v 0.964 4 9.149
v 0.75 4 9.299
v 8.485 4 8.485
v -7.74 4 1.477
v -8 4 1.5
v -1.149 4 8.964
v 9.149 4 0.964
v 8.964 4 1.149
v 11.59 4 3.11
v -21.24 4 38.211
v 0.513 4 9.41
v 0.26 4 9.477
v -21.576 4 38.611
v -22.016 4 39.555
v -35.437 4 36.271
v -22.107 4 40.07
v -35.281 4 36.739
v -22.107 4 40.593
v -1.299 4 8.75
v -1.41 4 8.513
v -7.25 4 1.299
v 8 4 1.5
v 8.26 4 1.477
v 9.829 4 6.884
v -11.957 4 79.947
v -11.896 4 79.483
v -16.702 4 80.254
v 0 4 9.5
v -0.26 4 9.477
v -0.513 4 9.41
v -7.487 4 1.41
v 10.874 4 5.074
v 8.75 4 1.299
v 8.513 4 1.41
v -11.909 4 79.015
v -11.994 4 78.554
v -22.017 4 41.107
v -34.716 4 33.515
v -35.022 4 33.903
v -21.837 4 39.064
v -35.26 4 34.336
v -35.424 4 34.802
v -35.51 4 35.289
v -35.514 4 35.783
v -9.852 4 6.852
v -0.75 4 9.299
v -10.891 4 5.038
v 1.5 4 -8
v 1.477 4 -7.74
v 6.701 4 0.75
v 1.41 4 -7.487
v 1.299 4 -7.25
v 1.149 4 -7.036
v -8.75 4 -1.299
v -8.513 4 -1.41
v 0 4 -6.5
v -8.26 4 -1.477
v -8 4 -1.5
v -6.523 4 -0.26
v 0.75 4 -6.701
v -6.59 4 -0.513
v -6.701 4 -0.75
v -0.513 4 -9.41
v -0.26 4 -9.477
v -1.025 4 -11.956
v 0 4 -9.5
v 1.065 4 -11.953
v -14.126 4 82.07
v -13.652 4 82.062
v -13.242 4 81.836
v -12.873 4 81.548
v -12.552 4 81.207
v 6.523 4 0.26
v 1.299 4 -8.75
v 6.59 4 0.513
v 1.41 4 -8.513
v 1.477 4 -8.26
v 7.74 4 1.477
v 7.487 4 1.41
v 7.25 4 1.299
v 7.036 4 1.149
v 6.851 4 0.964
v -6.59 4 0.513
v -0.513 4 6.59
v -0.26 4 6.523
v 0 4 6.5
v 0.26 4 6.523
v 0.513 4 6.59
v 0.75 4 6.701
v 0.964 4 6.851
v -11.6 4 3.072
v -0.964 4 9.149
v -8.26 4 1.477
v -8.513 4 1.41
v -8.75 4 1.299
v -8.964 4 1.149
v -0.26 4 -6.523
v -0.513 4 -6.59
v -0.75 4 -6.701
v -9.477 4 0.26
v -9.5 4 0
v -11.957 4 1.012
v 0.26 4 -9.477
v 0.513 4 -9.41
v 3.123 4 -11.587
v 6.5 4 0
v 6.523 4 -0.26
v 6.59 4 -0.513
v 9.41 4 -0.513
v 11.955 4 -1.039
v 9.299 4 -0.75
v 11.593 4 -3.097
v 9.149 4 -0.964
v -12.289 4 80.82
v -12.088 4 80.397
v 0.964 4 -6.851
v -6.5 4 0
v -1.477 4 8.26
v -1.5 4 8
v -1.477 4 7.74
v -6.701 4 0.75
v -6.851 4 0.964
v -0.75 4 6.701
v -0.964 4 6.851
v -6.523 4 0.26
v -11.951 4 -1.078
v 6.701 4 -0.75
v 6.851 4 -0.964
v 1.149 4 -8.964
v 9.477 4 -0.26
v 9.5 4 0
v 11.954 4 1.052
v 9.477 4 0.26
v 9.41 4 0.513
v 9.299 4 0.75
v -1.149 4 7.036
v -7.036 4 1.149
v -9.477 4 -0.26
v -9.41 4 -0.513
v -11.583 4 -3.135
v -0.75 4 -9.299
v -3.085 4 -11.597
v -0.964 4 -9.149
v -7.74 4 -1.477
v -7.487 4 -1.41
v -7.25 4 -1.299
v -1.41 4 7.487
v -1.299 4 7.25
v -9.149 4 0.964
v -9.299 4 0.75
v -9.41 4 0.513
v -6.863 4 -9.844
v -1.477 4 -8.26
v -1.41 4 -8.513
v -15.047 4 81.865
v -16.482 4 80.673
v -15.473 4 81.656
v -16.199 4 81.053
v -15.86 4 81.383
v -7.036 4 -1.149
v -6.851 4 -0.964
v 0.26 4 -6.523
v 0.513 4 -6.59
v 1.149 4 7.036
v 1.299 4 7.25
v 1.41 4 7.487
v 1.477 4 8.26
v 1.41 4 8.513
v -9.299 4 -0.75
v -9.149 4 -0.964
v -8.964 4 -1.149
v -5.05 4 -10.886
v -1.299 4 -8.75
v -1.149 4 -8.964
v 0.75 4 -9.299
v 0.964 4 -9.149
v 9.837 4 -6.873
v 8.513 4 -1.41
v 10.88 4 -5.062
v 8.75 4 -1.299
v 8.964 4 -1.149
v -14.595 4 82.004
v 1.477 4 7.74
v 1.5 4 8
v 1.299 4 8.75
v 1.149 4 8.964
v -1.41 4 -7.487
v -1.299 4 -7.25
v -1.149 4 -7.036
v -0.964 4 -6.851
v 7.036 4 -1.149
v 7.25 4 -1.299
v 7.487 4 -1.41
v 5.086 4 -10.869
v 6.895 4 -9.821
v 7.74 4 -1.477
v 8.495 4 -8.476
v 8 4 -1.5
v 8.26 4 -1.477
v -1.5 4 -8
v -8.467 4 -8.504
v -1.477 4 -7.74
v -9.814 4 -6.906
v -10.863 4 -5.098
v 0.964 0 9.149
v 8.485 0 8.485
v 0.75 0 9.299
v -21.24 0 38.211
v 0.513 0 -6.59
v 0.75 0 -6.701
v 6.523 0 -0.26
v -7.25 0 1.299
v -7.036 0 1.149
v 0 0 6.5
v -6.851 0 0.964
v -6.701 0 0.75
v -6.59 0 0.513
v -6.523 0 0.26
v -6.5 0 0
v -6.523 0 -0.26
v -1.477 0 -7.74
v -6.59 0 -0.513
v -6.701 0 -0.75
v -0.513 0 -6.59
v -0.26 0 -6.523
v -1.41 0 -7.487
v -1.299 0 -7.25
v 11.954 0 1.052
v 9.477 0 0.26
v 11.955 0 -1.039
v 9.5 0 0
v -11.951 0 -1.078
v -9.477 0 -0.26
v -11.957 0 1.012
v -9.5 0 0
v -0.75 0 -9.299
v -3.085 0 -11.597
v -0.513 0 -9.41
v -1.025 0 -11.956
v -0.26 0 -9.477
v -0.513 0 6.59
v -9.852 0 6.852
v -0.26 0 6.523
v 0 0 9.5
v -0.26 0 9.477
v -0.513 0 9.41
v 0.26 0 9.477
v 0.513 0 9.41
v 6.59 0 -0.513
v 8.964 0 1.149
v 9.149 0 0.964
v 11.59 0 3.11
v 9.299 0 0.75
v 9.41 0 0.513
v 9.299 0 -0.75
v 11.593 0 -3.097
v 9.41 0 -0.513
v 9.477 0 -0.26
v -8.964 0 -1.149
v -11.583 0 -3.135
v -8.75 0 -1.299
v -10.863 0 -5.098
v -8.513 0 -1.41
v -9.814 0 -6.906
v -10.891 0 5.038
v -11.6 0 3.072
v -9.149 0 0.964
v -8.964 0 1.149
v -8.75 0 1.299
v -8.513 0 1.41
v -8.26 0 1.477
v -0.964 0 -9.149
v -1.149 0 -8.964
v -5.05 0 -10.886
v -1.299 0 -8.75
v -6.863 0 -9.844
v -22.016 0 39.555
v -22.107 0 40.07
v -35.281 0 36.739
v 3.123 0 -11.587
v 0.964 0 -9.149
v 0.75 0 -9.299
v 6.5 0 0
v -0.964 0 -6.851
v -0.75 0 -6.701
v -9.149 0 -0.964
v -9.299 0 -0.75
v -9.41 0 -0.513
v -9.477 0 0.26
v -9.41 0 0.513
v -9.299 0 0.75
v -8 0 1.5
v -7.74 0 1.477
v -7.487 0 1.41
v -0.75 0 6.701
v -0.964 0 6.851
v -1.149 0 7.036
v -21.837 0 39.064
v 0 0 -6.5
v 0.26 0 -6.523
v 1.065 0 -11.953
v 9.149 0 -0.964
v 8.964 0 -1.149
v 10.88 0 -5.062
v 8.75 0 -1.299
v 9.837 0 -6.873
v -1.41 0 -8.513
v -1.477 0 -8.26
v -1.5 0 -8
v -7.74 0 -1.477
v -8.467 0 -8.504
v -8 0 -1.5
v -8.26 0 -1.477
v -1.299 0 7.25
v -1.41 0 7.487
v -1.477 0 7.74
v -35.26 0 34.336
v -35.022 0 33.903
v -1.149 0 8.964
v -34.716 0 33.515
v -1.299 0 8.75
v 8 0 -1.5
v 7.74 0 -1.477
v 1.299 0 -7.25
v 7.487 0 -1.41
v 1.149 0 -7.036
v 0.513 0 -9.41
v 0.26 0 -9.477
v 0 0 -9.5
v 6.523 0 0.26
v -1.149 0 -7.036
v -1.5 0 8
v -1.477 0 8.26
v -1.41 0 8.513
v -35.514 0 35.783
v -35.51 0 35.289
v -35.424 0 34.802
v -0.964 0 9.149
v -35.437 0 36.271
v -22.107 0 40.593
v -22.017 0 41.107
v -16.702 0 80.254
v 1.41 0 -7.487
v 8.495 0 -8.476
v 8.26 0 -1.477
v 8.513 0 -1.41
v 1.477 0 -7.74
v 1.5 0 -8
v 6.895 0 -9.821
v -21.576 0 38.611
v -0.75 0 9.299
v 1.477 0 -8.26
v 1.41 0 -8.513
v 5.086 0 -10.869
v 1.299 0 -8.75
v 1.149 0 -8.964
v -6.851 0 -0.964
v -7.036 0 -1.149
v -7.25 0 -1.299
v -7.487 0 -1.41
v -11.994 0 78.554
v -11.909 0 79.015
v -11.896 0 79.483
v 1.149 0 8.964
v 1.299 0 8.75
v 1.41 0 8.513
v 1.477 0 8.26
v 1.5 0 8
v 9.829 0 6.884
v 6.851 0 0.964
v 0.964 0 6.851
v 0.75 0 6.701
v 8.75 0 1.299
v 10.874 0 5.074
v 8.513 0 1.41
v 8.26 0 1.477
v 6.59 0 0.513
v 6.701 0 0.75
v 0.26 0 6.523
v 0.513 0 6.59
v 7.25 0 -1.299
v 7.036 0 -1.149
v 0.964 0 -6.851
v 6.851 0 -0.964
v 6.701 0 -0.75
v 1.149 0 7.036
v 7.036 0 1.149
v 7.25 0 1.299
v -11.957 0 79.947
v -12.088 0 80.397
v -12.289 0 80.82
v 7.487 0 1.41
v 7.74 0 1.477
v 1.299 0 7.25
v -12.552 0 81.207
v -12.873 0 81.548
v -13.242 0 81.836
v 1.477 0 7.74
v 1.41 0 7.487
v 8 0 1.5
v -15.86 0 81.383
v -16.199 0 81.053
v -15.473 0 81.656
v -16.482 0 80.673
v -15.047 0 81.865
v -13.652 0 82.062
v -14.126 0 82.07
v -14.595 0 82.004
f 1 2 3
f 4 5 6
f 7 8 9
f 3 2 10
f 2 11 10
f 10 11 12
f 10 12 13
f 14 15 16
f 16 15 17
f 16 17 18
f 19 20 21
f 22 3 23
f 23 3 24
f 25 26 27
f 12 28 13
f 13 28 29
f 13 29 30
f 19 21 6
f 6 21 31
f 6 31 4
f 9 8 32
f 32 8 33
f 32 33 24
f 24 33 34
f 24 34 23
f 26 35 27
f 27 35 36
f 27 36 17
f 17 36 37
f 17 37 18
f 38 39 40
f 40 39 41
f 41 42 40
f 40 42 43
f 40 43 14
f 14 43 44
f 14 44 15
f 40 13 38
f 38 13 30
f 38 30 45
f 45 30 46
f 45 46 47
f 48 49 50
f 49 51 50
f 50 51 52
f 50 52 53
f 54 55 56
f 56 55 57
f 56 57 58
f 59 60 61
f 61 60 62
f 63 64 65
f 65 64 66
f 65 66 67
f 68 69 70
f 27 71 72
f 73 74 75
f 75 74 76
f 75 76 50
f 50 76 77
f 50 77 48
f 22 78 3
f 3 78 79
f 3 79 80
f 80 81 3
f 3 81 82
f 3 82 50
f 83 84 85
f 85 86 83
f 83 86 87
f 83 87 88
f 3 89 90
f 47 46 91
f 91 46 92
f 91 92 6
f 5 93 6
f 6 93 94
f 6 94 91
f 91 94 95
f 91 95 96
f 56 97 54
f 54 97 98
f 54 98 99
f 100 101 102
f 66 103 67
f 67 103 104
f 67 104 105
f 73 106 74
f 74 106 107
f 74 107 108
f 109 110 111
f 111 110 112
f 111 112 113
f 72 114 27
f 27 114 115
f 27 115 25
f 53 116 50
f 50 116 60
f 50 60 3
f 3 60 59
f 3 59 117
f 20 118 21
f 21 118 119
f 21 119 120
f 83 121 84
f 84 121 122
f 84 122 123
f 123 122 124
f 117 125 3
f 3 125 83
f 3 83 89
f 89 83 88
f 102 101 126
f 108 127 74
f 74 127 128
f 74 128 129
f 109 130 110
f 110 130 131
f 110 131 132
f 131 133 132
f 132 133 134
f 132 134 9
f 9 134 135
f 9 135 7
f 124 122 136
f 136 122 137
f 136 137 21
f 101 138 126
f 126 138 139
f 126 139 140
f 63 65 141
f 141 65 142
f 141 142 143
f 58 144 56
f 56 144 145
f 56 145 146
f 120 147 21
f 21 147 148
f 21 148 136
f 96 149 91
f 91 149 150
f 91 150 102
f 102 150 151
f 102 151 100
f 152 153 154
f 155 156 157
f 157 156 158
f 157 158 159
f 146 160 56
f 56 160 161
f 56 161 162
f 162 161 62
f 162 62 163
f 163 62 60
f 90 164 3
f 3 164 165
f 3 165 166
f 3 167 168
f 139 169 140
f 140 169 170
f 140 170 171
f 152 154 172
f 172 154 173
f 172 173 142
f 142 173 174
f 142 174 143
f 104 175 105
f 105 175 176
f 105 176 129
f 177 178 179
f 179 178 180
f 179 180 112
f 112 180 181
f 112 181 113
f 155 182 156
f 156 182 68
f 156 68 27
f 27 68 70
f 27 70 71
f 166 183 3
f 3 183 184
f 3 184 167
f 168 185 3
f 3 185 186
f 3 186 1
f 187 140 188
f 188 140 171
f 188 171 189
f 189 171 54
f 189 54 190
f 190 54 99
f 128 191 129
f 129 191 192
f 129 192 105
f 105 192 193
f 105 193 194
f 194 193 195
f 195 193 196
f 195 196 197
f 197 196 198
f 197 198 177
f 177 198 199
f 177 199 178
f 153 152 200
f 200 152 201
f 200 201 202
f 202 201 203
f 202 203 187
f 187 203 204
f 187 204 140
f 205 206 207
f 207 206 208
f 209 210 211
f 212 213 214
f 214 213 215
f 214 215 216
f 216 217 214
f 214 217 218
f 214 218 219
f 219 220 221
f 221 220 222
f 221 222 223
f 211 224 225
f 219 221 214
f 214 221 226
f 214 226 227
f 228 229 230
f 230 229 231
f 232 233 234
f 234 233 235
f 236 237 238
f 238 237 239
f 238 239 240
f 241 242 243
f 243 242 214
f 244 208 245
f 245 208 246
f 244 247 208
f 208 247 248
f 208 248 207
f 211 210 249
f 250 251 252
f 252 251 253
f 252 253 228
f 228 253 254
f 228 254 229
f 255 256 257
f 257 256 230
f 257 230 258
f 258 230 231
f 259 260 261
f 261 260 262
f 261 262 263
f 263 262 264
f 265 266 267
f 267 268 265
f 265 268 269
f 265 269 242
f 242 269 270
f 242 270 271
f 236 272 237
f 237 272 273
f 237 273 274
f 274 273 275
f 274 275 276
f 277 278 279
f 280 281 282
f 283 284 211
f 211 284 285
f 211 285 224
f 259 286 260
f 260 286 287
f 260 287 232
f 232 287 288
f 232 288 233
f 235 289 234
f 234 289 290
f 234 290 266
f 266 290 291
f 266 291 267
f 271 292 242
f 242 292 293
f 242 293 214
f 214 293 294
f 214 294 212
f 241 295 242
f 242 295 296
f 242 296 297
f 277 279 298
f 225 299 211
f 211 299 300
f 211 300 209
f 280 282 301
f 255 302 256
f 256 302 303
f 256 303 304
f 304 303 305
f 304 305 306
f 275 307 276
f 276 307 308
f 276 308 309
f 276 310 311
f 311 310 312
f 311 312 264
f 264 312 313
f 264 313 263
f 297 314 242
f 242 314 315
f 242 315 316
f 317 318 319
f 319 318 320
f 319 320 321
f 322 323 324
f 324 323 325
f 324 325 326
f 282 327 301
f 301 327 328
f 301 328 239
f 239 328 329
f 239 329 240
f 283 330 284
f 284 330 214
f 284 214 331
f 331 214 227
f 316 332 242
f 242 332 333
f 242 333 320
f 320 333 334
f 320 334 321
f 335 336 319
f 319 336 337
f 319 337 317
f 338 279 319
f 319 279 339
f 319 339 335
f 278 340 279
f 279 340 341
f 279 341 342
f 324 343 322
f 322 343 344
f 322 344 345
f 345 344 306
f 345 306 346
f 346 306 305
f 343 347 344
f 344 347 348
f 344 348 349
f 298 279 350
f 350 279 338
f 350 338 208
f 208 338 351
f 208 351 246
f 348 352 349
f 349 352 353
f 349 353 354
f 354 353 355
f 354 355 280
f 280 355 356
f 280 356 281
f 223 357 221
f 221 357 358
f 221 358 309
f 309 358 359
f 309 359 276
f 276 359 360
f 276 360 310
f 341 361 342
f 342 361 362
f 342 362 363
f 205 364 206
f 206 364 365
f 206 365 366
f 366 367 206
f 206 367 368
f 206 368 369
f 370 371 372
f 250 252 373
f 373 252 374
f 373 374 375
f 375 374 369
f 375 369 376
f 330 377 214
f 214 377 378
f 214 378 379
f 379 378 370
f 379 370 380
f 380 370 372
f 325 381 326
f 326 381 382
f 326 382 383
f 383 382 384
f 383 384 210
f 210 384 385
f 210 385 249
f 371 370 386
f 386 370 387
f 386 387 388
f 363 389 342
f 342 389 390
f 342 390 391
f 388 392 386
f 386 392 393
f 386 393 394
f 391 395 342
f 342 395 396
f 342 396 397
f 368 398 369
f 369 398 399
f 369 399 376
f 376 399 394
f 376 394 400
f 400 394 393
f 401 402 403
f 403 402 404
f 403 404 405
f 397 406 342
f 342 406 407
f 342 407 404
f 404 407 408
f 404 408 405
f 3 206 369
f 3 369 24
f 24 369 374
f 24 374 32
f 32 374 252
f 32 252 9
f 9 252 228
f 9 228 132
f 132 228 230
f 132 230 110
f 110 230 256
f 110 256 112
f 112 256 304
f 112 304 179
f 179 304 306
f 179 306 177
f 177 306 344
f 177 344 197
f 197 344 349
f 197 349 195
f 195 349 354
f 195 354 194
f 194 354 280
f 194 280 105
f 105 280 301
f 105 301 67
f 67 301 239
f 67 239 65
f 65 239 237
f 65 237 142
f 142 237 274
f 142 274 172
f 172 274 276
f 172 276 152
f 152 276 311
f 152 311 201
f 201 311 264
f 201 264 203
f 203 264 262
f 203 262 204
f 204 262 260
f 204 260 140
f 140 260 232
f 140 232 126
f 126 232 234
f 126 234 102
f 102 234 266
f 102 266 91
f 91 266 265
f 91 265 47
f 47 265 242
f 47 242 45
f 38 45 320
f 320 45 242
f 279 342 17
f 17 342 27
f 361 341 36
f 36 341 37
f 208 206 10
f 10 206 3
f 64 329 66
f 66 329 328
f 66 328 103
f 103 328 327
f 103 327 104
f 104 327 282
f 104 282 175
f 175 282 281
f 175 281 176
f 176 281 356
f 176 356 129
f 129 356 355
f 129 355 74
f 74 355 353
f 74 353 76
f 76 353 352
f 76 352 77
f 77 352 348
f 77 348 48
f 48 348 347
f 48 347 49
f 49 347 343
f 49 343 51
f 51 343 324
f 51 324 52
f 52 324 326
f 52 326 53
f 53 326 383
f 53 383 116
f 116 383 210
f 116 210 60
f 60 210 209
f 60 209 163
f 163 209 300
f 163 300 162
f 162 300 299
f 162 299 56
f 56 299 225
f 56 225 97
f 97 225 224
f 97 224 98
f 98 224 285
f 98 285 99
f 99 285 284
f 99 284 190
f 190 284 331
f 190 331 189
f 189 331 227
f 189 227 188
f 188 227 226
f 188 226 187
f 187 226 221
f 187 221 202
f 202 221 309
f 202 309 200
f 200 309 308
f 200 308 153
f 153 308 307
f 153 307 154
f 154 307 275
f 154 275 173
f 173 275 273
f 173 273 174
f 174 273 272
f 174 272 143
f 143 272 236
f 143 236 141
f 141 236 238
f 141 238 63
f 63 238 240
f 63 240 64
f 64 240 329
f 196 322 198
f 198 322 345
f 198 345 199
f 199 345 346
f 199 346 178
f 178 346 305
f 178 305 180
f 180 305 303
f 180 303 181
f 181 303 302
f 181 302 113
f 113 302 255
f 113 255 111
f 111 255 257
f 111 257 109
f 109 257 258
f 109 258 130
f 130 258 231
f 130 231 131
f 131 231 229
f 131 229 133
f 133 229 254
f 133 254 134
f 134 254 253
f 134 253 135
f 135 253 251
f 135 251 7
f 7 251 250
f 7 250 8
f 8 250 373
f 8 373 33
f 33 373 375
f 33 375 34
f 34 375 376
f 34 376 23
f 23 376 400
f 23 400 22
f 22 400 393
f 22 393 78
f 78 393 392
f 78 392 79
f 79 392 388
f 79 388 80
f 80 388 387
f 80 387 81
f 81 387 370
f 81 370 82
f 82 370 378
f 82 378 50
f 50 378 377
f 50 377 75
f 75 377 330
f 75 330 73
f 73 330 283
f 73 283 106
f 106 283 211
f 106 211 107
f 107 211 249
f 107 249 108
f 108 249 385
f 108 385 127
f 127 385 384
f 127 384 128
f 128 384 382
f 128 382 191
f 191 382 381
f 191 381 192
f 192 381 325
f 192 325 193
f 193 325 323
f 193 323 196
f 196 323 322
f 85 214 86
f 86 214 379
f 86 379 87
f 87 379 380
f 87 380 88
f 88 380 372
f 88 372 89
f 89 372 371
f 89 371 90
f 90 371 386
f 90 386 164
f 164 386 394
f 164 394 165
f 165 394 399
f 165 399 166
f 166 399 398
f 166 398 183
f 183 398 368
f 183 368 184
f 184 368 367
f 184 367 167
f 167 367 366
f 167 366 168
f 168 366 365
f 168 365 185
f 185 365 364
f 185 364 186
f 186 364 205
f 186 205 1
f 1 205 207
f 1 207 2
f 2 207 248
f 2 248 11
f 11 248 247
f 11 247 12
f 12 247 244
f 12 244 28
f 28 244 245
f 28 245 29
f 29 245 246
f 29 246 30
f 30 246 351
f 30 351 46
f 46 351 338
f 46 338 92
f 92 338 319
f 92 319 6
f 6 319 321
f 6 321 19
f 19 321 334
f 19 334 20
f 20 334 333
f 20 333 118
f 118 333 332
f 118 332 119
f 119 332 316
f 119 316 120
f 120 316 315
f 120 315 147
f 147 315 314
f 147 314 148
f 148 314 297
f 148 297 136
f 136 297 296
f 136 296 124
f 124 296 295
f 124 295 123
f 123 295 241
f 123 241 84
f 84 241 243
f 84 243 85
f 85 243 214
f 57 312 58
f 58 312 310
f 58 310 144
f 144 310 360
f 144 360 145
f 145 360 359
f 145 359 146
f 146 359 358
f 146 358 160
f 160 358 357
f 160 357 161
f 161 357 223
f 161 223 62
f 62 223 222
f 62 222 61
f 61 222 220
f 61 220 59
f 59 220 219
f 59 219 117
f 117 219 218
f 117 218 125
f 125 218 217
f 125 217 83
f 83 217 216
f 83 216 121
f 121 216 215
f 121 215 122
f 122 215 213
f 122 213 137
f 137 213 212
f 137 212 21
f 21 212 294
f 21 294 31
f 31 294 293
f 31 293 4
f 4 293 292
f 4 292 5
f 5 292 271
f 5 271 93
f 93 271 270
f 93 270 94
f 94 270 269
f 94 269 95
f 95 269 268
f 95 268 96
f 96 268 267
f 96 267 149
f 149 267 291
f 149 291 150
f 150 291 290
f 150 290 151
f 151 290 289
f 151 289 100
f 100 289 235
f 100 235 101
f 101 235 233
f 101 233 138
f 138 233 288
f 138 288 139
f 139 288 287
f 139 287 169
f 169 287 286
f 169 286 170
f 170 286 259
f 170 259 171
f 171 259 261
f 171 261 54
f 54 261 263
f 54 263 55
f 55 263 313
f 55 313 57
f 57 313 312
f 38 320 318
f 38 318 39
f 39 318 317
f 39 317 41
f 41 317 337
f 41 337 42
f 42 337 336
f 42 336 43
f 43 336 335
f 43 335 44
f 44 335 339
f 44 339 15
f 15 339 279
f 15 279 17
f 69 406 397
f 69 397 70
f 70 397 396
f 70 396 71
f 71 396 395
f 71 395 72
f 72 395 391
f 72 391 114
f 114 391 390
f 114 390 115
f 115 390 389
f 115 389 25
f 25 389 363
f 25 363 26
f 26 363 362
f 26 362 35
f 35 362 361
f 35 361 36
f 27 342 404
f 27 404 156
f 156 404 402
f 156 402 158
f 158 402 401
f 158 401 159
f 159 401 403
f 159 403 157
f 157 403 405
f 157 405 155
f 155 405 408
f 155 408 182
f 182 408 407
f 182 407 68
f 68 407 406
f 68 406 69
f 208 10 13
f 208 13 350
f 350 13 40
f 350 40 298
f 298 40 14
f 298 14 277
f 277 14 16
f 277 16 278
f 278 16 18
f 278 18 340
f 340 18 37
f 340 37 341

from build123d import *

# Parameters (mm, degrees)
ESQUISSE1_R        = 1.5
BOSS_EXTRU_1_DEPTH = 4
CONG_1_R           = 3


with BuildPart() as part:
    # Esquisse1 → Boss.-Extru.1 (new body)
    with BuildSketch(Plane(origin=(0, 0, 0), x_dir=(1, 0, 0), z_dir=(0, 1, 0))):
        with BuildLine():
            Line((8.485281374, -8.485281374), (0, -16.970562748))
            Line((0, -16.970562748), (-22.464310668, -39.434873416))
            Line((-22.464310668, -39.434873416), (-11.218828677, -81.452465455))
            Line((-11.218828677, -81.452465455), (-15.680045384, -82.646454204))
            Line((-15.680045384, -82.646454204), (-36.047749068, -34.943524646))
            Line((-36.047749068, -34.943524646), (-9.851595733, -6.851719603))
            ThreePointArc((-9.851595733, -6.851719603), (1.064816767, 11.952663521), (8.485281374, -8.485281374))
        make_face()
        with Locations(Location((0, 8, 0), (0, 0, 270))):
            Circle(ESQUISSE1_R, mode=Mode.SUBTRACT)
        with Locations(Location((8, 0, 0), (0, 0, 270))):
            Circle(ESQUISSE1_R, mode=Mode.SUBTRACT)
        with Locations(Location((0, -8, 0), (0, 0, 270))):
            Circle(ESQUISSE1_R, mode=Mode.SUBTRACT)
        with Locations(Location((-8, 0, 0), (0, 0, 270))):
            Circle(ESQUISSE1_R, mode=Mode.SUBTRACT)
    extrude(amount=BOSS_EXTRU_1_DEPTH)

    # Congé1
    # the kernel refuses this fillet: 3 mm, written as the material it adds along each edge
    with BuildSketch(Plane(origin=(-22.464310668, 0, 39.434873416), x_dir=(0.7071067811865301, 0, -0.707106781186565), z_dir=(0, 1, 0))) as cong_1_piece_1:
        with BuildLine():
            CenterArc((CONG_1_R * 0.57715637581, -CONG_1_R), CONG_1_R, 90, 59.983334692)
            Line((-CONG_1_R * 0.288723559099, -CONG_1_R * 0.499748125118), (0, 0))
            Line((0, 0), (CONG_1_R * 0.57715637581, 0))
        make_face()
    extrude(amount=4)
    # the kernel refuses this fillet: 3 mm, written as the material it takes off along each edge
    with BuildSketch(Plane(origin=(-36.047749068, -4.881837421, 34.943524646), x_dir=(0.3926744141534844, 0, 0.9196775546185836), z_dir=(0, 1, 0))) as cong_1_2_piece_1:
        with BuildLine():
            CenterArc((CONG_1_R * 0.650911656199, CONG_1_R), CONG_1_R, 203.878855686, 66.121144314)
            Line((-CONG_1_R * 0.263491749375, CONG_1_R * 0.595195835156), (0, 0))
            Line((0, 0), (CONG_1_R * 0.650911656199, 0))
        make_face()
    extrude(amount=13.763674843, mode=Mode.SUBTRACT)
    with BuildSketch(Plane(origin=(-15.680045384, -6.503846863, 82.646454204), x_dir=(0.9660010666973496, 0, -0.25853808063722905), z_dir=(0, 1, 0))) as cong_1_2_piece_2:
        with BuildLine():
            CenterArc((CONG_1_R * 0.867179581778, CONG_1_R), CONG_1_R, 188.137677252, 81.862322748)
            Line((-CONG_1_R * 0.122751206352, CONG_1_R * 0.858447766839), (0, 0))
            Line((0, 0), (CONG_1_R * 0.867179581778, 0))
        make_face()
    extrude(amount=17.007693727, mode=Mode.SUBTRACT)
    with BuildSketch(Plane(origin=(-11.218828677, -7.5, 81.452465455), x_dir=(-0.2585380806372289, 0, -0.9660010666973499), z_dir=(0, 1, 0))) as cong_1_2_piece_3:
        with BuildLine():
            CenterArc((CONG_1_R, CONG_1_R), CONG_1_R, 180, 90)
            Line((0, CONG_1_R), (0, 0))
            Line((0, 0), (CONG_1_R, 0))
        make_face()
    extrude(amount=19, mode=Mode.SUBTRACT)


solid = part.part
